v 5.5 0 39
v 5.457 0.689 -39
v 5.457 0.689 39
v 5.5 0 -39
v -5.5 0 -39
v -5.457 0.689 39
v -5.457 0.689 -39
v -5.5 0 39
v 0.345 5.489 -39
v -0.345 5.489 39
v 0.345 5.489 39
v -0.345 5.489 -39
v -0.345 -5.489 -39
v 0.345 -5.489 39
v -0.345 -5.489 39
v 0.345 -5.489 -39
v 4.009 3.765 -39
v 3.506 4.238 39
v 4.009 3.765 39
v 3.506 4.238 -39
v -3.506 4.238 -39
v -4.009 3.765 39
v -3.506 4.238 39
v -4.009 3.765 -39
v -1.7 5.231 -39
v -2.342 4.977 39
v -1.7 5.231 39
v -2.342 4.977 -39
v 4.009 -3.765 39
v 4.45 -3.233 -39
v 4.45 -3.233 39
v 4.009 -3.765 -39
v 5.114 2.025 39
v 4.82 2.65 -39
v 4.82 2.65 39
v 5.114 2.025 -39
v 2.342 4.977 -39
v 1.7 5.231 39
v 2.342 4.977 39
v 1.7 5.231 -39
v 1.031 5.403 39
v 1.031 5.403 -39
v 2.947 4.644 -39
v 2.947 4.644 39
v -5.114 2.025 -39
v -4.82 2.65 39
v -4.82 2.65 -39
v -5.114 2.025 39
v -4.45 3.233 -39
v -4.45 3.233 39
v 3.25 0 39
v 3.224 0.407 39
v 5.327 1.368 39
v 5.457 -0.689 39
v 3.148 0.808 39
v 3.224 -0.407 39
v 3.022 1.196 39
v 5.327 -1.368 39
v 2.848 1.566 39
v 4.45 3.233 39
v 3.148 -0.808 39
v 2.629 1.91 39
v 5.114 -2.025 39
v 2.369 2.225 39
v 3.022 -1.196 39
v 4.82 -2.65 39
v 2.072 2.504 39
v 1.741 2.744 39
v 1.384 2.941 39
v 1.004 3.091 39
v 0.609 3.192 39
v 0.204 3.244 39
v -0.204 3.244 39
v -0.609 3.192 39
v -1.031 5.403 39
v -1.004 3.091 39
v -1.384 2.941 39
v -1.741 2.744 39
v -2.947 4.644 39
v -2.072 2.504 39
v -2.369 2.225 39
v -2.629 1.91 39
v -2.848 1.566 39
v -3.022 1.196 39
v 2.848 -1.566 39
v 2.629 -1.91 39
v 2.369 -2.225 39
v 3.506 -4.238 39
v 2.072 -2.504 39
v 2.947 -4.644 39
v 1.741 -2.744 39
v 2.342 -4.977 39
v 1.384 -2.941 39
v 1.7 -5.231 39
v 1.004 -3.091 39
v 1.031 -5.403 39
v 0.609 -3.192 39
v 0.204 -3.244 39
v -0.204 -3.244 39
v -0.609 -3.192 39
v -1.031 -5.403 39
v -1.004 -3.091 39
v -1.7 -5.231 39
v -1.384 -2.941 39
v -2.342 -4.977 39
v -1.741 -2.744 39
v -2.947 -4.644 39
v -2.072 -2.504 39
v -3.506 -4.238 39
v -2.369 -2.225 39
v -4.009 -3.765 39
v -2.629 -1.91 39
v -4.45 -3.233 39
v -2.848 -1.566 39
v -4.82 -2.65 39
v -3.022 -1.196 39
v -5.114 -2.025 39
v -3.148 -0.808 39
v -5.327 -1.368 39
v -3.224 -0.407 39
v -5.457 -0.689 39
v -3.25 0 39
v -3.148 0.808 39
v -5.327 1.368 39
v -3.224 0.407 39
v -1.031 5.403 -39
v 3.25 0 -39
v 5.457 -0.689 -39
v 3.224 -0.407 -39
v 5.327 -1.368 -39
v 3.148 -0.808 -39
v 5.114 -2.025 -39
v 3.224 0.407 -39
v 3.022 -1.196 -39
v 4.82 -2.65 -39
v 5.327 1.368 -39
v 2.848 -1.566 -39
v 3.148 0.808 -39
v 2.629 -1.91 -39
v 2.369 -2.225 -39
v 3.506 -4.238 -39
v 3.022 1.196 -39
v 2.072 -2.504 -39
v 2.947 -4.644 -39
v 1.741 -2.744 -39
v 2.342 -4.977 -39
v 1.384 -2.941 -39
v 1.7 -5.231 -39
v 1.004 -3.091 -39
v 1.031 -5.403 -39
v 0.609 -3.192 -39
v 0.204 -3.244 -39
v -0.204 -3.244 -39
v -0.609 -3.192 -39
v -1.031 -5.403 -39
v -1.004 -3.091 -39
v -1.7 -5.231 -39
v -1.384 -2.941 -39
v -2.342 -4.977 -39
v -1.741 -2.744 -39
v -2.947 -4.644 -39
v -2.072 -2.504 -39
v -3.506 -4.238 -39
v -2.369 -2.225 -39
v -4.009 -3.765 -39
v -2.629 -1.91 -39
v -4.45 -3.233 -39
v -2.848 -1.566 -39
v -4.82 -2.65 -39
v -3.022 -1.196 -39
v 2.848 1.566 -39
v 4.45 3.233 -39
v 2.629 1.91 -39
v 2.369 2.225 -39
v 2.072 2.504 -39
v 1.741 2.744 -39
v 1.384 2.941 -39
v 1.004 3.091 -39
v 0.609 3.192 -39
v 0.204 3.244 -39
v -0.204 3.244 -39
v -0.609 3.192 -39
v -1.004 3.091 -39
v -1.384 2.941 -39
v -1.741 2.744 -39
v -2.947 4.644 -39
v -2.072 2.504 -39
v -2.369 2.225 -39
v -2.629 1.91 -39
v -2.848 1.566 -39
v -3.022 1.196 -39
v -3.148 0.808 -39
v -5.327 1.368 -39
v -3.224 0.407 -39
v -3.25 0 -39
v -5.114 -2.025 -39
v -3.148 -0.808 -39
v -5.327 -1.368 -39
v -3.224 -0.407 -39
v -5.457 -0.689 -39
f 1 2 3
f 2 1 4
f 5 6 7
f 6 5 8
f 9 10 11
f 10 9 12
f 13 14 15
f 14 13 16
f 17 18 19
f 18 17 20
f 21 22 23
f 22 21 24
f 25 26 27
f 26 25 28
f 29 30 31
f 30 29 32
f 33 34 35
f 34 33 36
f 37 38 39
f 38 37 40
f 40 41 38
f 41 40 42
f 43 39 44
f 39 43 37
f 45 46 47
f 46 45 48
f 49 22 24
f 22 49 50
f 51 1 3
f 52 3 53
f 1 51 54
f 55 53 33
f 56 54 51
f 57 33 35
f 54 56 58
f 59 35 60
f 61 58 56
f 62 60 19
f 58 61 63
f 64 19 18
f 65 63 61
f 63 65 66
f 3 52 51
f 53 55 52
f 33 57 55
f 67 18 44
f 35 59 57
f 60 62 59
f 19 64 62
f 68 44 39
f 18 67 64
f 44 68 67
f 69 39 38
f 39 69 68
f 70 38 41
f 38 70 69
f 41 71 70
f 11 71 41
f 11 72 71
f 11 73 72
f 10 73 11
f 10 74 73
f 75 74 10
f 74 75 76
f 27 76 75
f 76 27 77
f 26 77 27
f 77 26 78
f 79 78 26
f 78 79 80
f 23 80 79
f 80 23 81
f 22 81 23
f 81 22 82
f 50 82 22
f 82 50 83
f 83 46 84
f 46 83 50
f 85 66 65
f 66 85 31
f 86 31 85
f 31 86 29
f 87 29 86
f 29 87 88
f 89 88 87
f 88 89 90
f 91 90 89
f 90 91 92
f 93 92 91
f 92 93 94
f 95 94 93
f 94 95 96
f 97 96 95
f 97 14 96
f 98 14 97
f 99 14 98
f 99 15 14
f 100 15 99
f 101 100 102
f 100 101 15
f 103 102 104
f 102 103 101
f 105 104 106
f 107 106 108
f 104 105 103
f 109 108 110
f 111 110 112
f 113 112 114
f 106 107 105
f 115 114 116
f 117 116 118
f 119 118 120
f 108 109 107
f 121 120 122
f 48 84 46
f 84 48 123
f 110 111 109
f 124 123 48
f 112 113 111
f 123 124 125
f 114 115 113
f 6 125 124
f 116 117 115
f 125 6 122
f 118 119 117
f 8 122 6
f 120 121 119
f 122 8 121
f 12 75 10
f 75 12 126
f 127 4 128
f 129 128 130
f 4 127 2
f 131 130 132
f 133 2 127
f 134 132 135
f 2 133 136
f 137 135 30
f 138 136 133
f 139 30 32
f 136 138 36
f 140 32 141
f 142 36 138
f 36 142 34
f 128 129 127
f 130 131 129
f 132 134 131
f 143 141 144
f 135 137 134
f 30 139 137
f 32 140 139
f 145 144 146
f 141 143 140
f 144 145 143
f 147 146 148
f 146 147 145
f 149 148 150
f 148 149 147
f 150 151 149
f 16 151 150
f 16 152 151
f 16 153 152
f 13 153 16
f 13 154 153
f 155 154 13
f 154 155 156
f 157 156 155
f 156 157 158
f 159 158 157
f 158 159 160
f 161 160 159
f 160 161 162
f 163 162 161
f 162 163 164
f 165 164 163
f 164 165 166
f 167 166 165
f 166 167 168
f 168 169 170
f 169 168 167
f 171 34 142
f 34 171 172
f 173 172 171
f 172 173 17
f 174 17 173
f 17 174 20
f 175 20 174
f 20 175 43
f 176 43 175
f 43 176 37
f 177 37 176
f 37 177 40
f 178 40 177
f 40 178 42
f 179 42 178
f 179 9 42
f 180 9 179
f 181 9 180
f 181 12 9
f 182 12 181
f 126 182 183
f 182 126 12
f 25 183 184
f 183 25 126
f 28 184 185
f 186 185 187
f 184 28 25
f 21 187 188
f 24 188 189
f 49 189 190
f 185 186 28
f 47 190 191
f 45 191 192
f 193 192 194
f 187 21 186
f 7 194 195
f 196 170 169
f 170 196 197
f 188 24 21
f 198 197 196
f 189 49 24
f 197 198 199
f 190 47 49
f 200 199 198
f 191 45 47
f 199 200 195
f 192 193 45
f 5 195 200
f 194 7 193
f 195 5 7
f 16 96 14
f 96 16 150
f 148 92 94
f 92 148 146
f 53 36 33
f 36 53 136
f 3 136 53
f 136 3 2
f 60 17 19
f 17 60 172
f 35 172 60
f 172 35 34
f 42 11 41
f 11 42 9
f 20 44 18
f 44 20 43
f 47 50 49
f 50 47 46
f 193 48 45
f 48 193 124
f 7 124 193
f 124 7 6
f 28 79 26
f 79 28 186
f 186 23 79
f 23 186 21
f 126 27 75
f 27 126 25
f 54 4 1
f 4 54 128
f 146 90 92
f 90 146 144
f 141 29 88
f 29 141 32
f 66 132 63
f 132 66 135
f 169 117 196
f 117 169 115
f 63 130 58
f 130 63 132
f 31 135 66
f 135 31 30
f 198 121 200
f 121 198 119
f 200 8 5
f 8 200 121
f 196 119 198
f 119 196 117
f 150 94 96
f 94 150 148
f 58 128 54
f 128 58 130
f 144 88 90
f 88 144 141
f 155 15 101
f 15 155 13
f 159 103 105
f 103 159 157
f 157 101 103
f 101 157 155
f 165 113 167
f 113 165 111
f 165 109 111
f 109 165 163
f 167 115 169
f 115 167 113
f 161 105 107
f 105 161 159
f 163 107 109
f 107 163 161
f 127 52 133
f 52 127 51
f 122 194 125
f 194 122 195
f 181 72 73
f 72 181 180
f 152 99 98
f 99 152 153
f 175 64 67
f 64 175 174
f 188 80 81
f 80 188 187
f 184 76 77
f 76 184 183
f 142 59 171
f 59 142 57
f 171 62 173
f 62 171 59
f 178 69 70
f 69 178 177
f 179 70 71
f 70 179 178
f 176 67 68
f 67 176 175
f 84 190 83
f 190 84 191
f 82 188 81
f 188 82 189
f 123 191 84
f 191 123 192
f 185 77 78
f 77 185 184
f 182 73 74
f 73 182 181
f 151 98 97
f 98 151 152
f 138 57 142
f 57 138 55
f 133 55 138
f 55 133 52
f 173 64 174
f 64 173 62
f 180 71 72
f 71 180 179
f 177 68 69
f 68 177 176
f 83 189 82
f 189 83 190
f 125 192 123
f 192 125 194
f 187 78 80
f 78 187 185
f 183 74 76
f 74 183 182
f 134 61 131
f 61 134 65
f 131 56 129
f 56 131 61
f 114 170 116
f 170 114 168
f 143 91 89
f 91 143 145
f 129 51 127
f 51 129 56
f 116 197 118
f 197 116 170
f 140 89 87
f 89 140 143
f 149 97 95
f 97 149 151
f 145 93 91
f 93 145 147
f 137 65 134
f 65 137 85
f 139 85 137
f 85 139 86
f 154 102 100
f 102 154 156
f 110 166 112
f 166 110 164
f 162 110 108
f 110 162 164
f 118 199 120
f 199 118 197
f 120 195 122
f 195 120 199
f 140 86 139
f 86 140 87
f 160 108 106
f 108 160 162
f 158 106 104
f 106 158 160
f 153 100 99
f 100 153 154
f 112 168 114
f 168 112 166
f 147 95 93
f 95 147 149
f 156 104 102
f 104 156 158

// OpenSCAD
$fn = 50;


difference() {
	union() {
		translate(v = [0, 0, -39.0000000000]) {
			cylinder(h = 78, r = 5.5000000000);
		}
	}
	union() {
		translate(v = [0, 0, -100.0000000000]) {
			cylinder(h = 200, r = 3.2500000000);
		}
	}
}
